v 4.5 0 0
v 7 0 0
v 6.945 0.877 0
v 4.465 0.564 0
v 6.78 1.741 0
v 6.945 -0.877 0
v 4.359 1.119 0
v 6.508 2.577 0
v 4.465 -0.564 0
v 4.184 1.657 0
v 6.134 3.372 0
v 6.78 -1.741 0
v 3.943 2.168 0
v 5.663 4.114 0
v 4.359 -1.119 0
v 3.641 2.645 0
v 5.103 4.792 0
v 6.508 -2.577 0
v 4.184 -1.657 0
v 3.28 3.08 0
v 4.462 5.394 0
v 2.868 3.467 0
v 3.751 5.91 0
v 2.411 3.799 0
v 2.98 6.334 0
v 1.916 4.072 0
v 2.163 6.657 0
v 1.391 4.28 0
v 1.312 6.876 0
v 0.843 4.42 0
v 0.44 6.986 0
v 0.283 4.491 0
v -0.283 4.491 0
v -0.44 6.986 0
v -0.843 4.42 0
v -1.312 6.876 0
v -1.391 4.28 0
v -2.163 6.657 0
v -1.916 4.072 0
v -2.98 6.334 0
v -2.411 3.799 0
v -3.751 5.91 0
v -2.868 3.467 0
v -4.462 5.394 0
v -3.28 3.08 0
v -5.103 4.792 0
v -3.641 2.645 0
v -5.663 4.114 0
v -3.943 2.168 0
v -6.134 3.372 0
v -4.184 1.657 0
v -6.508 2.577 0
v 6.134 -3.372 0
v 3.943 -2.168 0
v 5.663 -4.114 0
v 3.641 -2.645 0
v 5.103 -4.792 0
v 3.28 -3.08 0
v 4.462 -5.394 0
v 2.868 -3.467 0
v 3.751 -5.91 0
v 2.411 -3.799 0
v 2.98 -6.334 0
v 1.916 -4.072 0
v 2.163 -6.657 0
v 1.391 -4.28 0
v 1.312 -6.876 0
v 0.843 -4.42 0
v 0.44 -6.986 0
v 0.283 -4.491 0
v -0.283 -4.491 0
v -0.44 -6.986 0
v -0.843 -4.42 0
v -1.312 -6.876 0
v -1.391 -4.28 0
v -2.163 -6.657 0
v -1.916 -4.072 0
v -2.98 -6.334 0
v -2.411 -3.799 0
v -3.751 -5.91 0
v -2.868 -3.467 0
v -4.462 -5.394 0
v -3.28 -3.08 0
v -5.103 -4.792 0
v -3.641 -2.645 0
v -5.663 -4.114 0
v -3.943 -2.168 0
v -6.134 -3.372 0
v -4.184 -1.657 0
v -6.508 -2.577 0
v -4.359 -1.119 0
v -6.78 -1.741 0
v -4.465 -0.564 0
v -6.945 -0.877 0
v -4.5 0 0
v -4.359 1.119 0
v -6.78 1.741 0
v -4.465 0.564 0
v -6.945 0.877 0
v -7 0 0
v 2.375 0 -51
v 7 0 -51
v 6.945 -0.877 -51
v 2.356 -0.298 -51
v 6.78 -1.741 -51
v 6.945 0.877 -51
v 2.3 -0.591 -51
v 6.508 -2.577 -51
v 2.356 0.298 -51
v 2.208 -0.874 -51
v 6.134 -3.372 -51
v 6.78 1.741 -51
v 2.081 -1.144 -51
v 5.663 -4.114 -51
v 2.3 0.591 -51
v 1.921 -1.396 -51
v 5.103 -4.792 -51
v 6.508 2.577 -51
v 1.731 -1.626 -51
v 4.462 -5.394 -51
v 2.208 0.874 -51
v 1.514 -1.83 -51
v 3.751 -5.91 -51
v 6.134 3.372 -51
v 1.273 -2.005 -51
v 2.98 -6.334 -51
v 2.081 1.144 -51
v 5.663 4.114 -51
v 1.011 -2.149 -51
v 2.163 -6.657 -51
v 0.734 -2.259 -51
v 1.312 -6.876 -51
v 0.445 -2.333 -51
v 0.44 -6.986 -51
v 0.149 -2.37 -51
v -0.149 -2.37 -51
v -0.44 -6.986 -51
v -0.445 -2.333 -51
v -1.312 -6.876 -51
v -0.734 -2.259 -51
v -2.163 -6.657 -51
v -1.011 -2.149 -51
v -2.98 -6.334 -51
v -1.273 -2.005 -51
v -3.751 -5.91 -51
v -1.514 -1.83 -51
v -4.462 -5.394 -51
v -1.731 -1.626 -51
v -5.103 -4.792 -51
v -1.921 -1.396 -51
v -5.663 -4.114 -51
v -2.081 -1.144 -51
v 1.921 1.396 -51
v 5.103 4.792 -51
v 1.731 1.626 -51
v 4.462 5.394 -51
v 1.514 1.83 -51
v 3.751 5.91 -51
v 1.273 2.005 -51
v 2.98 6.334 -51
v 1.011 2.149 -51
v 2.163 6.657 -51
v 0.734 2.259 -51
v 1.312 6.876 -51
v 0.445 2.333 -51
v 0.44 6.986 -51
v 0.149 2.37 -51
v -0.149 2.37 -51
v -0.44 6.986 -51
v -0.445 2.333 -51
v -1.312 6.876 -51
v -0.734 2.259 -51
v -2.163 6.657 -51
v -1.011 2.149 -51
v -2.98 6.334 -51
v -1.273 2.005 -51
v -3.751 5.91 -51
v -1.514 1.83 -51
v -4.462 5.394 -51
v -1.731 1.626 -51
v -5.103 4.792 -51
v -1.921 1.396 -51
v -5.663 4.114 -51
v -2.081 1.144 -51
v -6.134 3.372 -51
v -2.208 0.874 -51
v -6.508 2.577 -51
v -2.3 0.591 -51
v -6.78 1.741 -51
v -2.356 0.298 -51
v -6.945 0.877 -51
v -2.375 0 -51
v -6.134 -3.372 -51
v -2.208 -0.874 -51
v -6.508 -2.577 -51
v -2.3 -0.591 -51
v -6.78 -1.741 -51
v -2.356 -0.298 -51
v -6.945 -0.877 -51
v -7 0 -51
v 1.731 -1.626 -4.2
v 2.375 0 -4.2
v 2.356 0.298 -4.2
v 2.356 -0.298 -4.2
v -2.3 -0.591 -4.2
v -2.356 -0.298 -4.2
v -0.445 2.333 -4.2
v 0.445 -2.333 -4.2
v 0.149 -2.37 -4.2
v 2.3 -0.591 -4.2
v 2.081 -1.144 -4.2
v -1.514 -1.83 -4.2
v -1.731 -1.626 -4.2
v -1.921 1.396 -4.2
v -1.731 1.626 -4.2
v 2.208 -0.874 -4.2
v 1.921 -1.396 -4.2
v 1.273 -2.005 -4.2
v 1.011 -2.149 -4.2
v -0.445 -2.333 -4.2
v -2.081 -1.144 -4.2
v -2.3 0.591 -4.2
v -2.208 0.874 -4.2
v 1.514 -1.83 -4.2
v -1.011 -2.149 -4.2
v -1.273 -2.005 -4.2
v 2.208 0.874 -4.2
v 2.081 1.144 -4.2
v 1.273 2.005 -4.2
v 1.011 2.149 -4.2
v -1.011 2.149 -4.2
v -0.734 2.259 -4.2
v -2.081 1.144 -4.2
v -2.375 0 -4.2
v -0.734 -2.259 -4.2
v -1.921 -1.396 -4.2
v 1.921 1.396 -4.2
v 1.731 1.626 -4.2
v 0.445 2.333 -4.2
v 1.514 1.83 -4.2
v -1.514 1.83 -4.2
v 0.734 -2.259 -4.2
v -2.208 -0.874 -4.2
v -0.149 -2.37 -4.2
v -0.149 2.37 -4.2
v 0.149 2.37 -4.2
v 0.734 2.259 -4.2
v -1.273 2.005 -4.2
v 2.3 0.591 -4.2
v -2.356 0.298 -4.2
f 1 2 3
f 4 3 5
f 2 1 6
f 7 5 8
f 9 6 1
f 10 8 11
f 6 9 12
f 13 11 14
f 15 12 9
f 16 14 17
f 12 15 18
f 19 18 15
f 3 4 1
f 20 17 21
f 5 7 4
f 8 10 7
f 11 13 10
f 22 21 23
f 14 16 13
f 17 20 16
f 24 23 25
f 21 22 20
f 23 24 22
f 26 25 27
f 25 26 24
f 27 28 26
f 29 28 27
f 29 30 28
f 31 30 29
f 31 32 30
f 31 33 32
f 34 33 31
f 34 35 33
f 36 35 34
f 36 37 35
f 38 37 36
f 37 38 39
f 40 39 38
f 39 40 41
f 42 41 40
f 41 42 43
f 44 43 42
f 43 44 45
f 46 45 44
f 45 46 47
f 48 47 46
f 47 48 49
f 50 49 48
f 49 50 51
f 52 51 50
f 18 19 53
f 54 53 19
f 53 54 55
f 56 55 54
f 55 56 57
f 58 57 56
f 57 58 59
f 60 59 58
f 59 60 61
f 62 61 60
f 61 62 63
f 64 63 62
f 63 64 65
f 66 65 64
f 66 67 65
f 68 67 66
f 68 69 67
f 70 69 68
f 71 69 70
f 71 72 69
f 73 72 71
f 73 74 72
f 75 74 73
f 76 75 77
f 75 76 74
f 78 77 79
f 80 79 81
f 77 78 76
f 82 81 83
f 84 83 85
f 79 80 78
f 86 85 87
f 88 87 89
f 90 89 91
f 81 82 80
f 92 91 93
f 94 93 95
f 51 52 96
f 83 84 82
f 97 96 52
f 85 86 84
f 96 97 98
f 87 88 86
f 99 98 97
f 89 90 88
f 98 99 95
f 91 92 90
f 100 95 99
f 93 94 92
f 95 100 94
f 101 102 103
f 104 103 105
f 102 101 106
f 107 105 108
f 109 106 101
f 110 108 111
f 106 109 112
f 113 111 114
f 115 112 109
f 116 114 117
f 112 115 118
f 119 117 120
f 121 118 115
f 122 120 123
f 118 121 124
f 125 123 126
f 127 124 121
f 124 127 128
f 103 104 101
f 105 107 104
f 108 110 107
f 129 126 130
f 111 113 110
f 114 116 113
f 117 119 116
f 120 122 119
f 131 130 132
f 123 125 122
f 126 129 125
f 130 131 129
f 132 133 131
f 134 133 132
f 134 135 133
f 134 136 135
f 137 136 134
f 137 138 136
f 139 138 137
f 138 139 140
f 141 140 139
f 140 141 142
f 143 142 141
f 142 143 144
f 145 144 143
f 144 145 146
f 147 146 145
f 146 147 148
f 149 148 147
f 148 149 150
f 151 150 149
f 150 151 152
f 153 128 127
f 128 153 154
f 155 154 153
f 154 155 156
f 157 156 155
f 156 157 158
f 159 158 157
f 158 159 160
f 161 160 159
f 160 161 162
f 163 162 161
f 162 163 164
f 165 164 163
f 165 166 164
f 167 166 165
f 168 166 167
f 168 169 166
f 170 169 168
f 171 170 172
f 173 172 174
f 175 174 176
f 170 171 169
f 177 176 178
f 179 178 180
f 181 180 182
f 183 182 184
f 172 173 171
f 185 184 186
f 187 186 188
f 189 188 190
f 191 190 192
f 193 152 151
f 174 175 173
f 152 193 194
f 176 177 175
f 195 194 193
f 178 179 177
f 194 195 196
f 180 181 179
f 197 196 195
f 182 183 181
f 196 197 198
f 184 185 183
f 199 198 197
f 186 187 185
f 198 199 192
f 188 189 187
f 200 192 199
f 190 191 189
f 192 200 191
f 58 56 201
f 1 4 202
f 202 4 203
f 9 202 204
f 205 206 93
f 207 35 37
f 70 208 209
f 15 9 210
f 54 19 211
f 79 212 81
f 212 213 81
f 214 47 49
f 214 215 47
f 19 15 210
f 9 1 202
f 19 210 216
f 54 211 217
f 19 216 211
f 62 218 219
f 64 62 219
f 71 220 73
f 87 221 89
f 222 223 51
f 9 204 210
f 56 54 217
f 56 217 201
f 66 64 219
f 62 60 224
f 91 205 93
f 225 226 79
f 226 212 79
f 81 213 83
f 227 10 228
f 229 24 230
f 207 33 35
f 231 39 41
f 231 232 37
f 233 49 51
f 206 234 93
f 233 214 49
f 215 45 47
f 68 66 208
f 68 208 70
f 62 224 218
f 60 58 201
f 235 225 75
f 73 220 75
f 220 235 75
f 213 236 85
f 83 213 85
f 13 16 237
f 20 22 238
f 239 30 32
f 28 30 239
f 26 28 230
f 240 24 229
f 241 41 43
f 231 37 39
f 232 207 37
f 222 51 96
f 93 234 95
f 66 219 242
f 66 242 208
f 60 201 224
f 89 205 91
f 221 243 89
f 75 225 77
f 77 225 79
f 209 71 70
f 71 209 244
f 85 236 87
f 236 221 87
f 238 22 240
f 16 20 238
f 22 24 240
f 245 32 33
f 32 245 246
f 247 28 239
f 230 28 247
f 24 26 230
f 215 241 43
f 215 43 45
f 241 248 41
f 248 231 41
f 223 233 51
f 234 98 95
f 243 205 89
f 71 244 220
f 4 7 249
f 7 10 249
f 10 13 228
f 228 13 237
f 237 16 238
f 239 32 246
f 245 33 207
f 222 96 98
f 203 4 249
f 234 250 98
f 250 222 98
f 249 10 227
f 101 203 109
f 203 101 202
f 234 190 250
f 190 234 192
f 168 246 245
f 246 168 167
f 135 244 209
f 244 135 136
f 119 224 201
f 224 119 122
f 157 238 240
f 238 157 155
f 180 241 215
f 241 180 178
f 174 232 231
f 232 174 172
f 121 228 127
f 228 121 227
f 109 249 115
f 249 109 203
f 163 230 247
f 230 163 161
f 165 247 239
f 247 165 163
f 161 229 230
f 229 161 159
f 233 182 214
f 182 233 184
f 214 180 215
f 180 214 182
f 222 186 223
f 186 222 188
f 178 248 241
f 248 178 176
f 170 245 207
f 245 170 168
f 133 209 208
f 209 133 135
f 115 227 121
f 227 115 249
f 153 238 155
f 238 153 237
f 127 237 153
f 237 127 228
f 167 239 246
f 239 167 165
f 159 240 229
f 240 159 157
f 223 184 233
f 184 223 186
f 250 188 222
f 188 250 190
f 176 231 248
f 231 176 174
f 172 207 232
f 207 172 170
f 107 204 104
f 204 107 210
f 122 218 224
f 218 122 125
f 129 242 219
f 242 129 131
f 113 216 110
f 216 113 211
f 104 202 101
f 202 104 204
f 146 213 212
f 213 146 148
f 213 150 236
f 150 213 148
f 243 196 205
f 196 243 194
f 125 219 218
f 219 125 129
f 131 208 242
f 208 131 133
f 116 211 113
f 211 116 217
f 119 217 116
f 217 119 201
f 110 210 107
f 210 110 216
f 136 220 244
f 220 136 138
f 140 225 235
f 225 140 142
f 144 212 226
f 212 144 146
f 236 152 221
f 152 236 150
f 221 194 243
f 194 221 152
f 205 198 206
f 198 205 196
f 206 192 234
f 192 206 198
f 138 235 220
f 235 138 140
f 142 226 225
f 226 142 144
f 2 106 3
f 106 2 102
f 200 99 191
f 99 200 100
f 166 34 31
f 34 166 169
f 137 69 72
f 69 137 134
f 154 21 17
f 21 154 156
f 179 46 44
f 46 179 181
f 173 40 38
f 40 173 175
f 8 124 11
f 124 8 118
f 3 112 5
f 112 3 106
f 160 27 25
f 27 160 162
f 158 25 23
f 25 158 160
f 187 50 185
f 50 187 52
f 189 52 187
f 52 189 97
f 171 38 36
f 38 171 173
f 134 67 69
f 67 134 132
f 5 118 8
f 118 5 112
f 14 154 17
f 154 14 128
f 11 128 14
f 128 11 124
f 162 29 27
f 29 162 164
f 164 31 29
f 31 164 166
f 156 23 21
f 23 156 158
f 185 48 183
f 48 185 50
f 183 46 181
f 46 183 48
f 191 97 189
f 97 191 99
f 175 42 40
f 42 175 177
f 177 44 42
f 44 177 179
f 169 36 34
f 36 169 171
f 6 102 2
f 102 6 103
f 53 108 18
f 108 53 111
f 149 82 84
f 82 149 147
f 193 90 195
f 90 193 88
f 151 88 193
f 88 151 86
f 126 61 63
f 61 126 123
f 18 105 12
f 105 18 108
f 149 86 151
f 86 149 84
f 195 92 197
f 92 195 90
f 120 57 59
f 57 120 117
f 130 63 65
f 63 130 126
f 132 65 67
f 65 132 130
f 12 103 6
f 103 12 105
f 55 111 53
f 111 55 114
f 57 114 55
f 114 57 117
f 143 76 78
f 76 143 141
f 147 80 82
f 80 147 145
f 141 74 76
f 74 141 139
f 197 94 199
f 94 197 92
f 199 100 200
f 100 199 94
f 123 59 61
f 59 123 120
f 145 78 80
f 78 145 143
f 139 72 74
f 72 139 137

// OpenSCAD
$fn = 50;


difference() {
	union() {
		translate(v = [0, 0, -51.0000000000]) {
			cylinder(h = 51, r = 7.0000000000);
		}
		cylinder(h = 0, r = 10.0000000000);
	}
	union() {
		translate(v = [0, 0, 0]) {
			rotate(a = [0, 0, 0]) {
				difference() {
					union() {
						#translate(v = [0, 0, -51.0000000000]) {
							cylinder(h = 51, r = 2.2500000000);
						}
						#translate(v = [0, 0, -4.2000000000]) {
							cylinder(h = 4.2000000000, r1 = 2.3750000000, r2 = 4.5000000000);
						}
						#translate(v = [0, 0, -51.0000000000]) {
							cylinder(h = 51, r = 2.3750000000);
						}
						#translate(v = [0, 0, -51.0000000000]) {
							cylinder(h = 51, r = 2.2500000000);
						}
					}
					union();
				}
			}
		}
	}
}
